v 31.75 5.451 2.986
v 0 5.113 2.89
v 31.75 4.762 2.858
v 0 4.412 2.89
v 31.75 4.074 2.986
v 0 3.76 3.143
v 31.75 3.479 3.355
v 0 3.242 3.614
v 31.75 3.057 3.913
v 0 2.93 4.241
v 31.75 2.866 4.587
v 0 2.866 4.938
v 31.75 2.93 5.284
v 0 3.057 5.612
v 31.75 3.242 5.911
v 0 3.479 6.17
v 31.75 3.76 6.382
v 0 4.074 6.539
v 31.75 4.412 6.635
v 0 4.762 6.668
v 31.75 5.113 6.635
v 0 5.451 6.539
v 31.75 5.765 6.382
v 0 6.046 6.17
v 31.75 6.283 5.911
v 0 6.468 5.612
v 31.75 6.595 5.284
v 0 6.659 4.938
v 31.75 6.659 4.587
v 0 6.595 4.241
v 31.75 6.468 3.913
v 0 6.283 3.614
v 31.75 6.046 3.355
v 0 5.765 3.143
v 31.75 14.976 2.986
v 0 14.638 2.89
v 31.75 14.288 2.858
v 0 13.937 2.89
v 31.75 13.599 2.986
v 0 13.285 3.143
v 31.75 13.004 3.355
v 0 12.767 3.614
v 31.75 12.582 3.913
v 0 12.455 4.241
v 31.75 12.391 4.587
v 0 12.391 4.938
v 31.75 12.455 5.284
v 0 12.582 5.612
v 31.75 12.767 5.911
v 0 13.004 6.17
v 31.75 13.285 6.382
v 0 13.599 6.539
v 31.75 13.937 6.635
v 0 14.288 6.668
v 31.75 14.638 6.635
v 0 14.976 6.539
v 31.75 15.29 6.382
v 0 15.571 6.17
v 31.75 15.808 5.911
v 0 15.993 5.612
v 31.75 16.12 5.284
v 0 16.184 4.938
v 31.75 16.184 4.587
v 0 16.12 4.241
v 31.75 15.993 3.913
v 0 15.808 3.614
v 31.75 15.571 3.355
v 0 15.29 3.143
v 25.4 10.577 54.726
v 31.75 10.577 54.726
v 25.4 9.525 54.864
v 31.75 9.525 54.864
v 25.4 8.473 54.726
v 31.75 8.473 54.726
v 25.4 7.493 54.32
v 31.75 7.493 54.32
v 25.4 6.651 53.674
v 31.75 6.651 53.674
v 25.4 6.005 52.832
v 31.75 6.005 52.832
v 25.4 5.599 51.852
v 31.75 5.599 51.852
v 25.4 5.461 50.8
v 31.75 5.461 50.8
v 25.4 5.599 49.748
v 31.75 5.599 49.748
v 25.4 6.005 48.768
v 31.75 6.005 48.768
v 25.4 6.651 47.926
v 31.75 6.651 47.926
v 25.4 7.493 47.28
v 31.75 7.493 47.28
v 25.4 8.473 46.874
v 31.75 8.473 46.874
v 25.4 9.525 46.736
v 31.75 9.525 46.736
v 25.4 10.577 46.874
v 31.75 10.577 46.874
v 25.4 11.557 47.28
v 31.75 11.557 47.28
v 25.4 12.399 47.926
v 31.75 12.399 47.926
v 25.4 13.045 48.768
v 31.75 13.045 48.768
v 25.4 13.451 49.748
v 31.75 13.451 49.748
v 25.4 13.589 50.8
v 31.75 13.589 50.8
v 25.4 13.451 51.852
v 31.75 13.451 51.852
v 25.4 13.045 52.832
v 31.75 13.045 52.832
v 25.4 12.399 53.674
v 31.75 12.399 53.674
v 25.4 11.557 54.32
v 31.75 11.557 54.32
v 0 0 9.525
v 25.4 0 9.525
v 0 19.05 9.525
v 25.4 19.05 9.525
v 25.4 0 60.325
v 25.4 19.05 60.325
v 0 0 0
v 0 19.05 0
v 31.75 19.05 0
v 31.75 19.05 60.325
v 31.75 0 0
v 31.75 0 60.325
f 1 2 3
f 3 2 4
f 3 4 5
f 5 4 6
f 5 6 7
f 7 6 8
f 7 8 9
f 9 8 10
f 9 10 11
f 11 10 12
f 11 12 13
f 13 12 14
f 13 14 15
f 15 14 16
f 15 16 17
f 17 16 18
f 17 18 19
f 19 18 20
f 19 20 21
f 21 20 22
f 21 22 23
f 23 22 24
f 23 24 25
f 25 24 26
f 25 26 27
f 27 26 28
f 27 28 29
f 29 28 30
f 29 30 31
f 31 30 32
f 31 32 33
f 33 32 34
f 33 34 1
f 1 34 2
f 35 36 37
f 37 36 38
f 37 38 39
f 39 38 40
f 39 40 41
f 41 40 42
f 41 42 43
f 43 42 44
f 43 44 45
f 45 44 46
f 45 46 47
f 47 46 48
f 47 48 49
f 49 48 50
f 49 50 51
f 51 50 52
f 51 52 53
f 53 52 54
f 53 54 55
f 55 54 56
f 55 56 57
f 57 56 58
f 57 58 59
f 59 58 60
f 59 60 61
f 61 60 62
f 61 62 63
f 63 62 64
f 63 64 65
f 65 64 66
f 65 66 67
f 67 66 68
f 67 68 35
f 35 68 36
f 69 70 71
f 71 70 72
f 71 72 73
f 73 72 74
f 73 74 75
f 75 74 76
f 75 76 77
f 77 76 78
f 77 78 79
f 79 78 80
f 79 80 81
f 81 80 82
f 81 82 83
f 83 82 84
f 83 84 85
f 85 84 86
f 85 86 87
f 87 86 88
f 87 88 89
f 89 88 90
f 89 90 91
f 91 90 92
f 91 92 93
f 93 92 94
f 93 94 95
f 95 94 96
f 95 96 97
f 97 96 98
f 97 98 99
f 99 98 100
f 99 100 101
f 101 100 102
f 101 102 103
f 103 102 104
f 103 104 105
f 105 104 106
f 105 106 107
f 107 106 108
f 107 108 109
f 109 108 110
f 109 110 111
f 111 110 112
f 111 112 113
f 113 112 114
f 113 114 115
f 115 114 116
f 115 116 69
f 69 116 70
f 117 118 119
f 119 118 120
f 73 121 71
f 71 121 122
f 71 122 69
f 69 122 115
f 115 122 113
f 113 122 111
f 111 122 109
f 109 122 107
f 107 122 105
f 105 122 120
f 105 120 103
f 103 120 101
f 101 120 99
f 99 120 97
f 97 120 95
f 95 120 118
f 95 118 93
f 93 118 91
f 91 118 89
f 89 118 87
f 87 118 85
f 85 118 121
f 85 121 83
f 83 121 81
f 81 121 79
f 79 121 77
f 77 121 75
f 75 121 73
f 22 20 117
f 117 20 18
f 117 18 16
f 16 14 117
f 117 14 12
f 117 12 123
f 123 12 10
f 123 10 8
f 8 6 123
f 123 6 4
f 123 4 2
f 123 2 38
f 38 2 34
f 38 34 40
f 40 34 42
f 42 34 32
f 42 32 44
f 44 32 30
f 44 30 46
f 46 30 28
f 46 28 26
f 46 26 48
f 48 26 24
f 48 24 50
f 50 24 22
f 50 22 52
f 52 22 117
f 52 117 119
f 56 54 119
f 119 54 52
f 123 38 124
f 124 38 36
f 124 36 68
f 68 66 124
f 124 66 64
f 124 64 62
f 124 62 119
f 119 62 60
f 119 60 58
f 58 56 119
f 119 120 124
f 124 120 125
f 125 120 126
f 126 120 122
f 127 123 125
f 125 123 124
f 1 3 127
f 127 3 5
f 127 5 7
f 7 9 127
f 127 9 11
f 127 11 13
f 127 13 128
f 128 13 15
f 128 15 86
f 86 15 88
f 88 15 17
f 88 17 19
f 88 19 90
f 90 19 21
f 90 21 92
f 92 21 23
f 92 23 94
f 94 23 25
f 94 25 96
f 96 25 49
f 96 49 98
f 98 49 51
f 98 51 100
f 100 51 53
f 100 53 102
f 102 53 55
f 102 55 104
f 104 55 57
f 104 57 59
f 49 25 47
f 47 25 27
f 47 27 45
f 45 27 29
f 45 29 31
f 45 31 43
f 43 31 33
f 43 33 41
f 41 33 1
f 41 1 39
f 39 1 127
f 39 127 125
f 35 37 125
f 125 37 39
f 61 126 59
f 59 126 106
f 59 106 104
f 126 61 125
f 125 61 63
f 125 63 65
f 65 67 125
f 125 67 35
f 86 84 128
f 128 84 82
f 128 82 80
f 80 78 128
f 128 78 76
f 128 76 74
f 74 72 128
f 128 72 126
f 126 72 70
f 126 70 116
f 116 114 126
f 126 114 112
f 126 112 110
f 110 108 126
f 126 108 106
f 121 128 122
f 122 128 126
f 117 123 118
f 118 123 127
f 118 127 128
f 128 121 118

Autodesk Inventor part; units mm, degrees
ref_plane "YZ Plane" through (0, 0, 0) normal (1, 0, 0) x (0, 1, 0)
ref_plane "XZ Plane" through (0, 0, 0) normal (0, 1, 0) x (-1, 0, 0)
ref_plane "XY Plane" through (0, 0, 0) normal (0, 0, 1) x (1, 0, 0)
sketch "Sketch1" plane through (0, 0, 0) normal (0, 1, 0) x (-1, 0, 0)
  line L0 (0, 0) -> (-31.75, 0)
  line L1 (-31.75, 0) -> (-31.75, 60.325)
  line L2 (-31.75, 60.325) -> (0, 60.325)
  line L3 (0, 60.325) -> (0, 0)
  line L4 (0, 60.325) -> (-25.4, 60.325)
  line L5 (-25.4, 60.325) -> (-25.4, 9.525)
  line L6 (-25.4, 9.525) -> (0, 9.525)
  line L7 (0, 9.525) -> (0, 60.325)
  dimension "d0" = 60.325
  dimension "d1" = 31.75
  dimension "d2" = 9.525
  dimension "d3" = 6.35
extrude "Extrusion1" add sketch "Sketch1" along normal blind 19.05 contours L0 L1 L2 L5 L6 L3
sketch "Sketch2" plane through (31.75, 0, 60.325) normal (1, 0, 0) x (0, 0, -1)
  line L0 (0, 0) -> (60.325, 0) projected
  line L1 (60.325, 0) -> (60.325, 19.05) projected
  line L2 (0, 19.05) -> (60.325, 19.05) projected
  line L3 (0, 0) -> (0, 19.05) projected
  point P0 (9.525, 9.525)
  dimension "d6" = 19.05
  dimension "d7" = 9.525
  dimension "d8" = 9.525
hole "Hole1" at (31.75, 9.525, 50.8) direction (-1, 0, 0) diameter 8.128 depth 10.9728 tip angle 118
sketch "Sketch3" plane through (0, 0, 0) normal (-1, 0, 0) x (0, 0, 1)
  line L0 (9.525, 0) -> (9.525, 19.05) projected
  line L1 (0, 19.05) -> (9.525, 19.05) projected
  line L2 (0, 0) -> (0, 19.05) projected
  line L3 (0, 0) -> (9.525, 0) projected
  point P0 (4.7625, 4.7625)
  point P1 (4.7625, 14.2875)
  dimension "d16" = 9.525
  dimension "d17" = 9.525
  dimension "d18" = 4.7625
  dimension "d19" = 19.05
  dimension "d20" = 4.7625
  dimension "d21" = 4.7625
hole "Hole2" at (0, 4.7625, 4.7625) at (0, 14.2875, 4.7625) direction (1, 0, 0) diameter 3.81 end through all
equation "\"d7\" = 0.5 * d6"
equation "\"d8\" = d7"
equation "\"d18\" = 0.5 * d17"
equation "\"d20\" = -0.5 * d16 + 0.5 * d19"
equation "\"d21\" = d18"
properties part number "PaddleCollection2.1WheelBracket" material "Nylon 6/6"
